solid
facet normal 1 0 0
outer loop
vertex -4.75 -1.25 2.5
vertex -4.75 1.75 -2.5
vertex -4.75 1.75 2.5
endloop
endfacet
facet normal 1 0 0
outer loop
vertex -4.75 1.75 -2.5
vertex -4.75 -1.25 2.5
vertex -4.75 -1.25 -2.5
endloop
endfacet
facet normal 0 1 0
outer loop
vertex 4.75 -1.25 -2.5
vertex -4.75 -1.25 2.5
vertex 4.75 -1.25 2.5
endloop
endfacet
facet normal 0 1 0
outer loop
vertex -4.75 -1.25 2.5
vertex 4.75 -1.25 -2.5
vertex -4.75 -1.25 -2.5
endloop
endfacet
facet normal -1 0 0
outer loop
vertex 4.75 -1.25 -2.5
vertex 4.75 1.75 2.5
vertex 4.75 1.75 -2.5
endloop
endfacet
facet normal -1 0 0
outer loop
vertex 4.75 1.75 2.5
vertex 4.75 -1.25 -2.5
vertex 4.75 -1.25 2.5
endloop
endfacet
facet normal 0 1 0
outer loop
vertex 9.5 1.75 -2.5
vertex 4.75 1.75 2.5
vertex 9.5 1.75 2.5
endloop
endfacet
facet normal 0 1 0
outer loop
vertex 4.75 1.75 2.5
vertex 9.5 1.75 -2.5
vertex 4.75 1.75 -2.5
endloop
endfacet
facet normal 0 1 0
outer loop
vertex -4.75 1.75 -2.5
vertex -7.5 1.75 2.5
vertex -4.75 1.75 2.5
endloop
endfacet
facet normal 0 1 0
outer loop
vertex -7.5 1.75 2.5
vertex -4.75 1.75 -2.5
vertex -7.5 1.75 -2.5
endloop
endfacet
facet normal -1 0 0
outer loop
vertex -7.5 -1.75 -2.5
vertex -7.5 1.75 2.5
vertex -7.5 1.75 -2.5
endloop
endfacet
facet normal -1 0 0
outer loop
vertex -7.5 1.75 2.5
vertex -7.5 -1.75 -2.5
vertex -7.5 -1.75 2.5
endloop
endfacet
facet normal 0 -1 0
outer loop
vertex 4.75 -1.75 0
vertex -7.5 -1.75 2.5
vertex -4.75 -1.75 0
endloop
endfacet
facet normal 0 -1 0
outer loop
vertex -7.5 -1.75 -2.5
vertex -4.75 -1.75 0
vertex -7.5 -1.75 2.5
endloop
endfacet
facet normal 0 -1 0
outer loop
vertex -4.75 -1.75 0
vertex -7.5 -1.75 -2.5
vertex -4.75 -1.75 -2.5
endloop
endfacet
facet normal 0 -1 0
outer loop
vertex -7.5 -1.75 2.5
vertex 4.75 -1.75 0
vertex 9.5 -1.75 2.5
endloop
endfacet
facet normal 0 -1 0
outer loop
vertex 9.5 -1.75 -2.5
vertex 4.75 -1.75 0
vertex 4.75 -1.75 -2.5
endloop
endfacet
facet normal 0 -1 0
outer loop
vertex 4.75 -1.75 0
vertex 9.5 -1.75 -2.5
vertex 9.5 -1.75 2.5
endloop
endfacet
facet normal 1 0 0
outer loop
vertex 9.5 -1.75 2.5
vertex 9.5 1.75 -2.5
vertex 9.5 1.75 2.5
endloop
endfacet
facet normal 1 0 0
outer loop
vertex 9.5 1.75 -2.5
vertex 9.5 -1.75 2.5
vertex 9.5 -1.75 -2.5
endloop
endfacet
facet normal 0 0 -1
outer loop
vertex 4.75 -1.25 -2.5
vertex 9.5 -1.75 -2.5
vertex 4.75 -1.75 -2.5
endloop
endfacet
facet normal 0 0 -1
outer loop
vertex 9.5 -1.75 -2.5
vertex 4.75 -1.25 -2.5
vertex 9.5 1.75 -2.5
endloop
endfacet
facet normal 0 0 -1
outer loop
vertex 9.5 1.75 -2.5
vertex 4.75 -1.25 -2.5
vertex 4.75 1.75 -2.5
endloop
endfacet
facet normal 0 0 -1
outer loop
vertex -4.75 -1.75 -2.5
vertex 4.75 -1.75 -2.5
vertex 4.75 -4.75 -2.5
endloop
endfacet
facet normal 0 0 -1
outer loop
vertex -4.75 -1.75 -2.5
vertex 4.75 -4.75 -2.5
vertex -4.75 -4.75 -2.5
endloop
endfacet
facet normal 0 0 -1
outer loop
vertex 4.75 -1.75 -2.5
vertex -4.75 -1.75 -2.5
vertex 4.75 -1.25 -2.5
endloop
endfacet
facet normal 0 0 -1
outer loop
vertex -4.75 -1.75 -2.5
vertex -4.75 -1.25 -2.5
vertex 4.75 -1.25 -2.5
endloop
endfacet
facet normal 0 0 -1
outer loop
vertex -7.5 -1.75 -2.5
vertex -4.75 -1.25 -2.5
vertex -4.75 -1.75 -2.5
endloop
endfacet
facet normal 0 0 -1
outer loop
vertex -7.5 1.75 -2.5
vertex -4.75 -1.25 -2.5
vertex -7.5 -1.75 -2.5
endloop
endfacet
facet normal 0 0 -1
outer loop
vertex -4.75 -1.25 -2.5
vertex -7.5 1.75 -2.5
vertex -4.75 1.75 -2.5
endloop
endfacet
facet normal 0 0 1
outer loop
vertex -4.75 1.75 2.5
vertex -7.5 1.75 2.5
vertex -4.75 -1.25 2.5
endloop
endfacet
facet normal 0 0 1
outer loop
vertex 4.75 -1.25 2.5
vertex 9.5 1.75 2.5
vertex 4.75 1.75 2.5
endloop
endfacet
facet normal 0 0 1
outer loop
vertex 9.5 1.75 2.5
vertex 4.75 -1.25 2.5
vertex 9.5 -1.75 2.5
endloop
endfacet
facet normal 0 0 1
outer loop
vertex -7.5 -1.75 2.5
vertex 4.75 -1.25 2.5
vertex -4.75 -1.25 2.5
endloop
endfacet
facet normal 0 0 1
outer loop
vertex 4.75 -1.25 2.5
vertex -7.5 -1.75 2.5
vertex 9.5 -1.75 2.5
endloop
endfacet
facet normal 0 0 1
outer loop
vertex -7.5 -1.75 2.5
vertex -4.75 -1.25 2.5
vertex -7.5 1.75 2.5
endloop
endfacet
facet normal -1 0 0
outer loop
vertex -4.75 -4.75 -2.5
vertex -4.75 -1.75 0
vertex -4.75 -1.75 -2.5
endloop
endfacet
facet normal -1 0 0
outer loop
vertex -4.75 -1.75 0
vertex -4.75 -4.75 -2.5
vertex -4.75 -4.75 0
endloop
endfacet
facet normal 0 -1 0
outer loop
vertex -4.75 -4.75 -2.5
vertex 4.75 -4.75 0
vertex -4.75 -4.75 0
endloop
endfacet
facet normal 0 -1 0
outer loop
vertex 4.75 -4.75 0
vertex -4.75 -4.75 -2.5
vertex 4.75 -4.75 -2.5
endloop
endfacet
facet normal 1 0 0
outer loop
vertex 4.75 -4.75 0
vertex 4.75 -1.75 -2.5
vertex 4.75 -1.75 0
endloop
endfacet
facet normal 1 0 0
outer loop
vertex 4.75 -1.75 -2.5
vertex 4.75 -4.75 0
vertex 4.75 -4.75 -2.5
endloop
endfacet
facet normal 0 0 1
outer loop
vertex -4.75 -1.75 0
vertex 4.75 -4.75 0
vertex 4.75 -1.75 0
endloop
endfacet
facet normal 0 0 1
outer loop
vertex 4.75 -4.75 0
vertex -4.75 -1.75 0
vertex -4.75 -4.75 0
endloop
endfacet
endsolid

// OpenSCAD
charger_width = 19;

rotate([90, 0, 0]) union() {
    difference() {
        cube([charger_width, 5, 3.5], center = true);
        union() {
            translate([0, -1.25, -0.25]) cube([charger_width/2, 10, 3], center = true);
            translate([-charger_width/2, 0, 0]) cube([4, 10, 10], center = true);
        }
    }
    translate([0, -1.25, 3.25]) cube([charger_width/2, 2.5, 3], center = true);
}
